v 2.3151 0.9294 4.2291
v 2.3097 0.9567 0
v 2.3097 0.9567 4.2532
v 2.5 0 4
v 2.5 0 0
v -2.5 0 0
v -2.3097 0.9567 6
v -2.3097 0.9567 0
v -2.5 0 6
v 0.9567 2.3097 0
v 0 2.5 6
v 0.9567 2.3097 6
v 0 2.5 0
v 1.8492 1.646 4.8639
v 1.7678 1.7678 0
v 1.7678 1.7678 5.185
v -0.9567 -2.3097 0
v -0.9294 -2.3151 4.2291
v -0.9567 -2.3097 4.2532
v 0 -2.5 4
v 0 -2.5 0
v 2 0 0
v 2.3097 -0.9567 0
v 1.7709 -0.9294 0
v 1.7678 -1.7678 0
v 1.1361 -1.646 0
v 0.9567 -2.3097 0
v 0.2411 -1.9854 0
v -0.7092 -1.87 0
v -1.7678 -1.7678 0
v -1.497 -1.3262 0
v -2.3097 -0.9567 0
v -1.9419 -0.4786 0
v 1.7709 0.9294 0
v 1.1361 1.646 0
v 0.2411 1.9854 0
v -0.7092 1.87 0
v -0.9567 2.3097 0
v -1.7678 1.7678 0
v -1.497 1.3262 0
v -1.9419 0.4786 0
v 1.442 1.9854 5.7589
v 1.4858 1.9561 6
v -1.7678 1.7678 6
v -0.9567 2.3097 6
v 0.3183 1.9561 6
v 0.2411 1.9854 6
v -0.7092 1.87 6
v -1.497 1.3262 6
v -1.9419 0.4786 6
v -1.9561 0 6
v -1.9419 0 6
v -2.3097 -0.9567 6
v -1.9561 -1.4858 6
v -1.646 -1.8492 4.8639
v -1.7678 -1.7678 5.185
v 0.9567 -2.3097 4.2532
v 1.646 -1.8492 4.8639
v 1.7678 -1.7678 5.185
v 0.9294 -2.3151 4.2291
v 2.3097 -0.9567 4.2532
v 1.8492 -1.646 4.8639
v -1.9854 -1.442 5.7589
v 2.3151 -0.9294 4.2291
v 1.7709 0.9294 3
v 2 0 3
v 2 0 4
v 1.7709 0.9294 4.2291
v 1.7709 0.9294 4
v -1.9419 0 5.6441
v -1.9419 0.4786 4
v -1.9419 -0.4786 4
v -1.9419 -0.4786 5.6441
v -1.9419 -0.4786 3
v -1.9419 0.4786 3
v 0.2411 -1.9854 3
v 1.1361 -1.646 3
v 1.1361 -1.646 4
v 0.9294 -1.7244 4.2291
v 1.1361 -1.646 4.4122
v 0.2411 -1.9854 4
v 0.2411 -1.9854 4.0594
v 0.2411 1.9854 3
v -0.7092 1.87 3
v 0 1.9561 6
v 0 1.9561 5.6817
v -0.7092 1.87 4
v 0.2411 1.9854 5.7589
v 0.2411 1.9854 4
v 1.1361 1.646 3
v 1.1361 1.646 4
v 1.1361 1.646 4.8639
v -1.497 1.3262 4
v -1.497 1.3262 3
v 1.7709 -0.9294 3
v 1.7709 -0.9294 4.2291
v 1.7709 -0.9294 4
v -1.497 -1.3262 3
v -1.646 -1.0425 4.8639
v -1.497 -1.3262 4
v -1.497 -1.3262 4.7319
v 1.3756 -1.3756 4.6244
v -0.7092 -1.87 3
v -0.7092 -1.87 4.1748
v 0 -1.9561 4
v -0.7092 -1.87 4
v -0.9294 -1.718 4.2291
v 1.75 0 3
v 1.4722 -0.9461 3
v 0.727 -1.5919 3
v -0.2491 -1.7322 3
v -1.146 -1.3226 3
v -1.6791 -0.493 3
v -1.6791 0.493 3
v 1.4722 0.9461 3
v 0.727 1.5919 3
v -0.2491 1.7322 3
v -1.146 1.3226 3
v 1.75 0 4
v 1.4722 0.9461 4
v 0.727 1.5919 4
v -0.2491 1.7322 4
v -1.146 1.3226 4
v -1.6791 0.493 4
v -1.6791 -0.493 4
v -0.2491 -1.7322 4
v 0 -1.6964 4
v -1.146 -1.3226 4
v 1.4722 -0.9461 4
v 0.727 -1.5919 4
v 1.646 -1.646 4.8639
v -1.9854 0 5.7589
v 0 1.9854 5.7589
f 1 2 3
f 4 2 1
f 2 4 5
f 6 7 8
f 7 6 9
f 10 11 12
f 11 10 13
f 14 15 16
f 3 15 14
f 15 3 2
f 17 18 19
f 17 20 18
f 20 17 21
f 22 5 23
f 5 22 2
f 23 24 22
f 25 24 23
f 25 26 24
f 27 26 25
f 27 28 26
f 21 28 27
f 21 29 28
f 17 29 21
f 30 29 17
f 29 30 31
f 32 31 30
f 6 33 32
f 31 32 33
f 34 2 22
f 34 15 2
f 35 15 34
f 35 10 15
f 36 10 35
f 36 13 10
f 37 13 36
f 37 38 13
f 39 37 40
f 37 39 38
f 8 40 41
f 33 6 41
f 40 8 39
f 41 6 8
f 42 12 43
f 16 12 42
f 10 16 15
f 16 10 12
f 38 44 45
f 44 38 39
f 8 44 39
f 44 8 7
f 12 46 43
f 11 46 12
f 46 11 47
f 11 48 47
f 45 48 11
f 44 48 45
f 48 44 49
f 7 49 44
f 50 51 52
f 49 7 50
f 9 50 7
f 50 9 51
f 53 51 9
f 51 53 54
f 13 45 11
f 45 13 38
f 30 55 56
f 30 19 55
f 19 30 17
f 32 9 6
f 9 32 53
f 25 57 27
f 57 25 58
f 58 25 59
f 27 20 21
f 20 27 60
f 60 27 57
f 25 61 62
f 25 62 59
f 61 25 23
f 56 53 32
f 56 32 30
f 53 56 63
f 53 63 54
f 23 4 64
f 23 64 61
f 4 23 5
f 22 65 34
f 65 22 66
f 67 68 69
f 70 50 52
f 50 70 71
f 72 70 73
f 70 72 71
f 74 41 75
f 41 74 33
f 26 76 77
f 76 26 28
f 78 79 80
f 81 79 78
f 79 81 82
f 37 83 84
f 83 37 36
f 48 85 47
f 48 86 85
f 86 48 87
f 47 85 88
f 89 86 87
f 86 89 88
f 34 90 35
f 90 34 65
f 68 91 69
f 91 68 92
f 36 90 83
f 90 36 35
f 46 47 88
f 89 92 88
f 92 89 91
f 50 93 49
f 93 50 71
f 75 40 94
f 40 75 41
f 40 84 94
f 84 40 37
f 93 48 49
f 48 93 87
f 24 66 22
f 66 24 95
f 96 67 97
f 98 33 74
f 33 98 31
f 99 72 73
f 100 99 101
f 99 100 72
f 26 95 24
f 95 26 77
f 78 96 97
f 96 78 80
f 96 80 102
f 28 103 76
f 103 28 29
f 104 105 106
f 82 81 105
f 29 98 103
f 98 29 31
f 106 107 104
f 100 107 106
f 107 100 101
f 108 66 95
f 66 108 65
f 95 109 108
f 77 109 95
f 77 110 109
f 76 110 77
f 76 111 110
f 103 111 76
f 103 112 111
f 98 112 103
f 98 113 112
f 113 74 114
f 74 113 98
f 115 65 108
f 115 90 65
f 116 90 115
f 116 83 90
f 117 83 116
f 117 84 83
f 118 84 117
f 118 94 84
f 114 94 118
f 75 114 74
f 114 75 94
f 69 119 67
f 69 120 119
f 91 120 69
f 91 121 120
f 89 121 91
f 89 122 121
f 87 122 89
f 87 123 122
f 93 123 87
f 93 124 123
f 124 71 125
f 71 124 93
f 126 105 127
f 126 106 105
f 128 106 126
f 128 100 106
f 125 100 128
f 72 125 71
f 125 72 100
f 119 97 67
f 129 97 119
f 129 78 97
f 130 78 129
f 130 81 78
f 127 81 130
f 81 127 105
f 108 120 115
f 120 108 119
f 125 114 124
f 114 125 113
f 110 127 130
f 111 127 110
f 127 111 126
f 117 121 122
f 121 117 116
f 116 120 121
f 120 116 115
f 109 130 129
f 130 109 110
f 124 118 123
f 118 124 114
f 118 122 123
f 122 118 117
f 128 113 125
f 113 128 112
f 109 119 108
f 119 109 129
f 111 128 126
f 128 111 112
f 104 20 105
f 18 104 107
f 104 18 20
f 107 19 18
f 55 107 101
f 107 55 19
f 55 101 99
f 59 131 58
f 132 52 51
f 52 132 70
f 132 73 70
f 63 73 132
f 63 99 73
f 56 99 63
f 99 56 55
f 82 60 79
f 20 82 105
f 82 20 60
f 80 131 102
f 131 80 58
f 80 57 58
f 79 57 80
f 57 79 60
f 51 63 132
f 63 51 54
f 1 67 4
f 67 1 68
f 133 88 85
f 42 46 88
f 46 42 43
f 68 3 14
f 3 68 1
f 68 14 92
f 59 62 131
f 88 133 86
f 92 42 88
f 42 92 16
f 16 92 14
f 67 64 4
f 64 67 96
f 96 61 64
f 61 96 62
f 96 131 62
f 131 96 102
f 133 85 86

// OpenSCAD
// Corner connectors for the "fence" of our kitchen shelves.
// These are used to connected carbon-fiber poles that make
// up the fence.
// Author: JMJ


inner_dia = 4;
connector_height = 6;
hole_height = connector_height;
thickness = 1;

// Min arc length (for cylinders and spheres)
// This is perfectly fine for 3D printed circles of dia 1".
$fs = 1; 

module pipe() {
    difference() {
        cylinder(d=inner_dia + thickness, connector_height);
        cylinder(d=inner_dia, connector_height);
    }
    ring();
}


module ring() {
    translate([0, 0, hole_height/2]) {
        difference() {
            cylinder(d=inner_dia + thickness, thickness);
            cylinder(d=inner_dia - thickness/2, thickness);
        }
    }
}


module hole_punch() {
    translate([-connector_height/2,0, hole_height]) {
        rotate([0, 90, 0])
            cylinder(d=inner_dia, connector_height);
    }
}




module center_connector() {
    difference() {
        pipe();
        hole_punch();
    }
}

module corner_connector() {
    shift = connector_height/2;
    difference() {
        pipe();
        union() {
        translate([0, -shift, 0]) rotate([0, 0, 90])
            hole_punch();
            translate([shift, 0, 0]) hole_punch();
        }
    }
}

spacing = inner_dia + 2 * thickness;
//center_connector();
//translate([spacing,0,0]) corner_connector();
translate([0,0,0]) corner_connector();
//hole_punch();
